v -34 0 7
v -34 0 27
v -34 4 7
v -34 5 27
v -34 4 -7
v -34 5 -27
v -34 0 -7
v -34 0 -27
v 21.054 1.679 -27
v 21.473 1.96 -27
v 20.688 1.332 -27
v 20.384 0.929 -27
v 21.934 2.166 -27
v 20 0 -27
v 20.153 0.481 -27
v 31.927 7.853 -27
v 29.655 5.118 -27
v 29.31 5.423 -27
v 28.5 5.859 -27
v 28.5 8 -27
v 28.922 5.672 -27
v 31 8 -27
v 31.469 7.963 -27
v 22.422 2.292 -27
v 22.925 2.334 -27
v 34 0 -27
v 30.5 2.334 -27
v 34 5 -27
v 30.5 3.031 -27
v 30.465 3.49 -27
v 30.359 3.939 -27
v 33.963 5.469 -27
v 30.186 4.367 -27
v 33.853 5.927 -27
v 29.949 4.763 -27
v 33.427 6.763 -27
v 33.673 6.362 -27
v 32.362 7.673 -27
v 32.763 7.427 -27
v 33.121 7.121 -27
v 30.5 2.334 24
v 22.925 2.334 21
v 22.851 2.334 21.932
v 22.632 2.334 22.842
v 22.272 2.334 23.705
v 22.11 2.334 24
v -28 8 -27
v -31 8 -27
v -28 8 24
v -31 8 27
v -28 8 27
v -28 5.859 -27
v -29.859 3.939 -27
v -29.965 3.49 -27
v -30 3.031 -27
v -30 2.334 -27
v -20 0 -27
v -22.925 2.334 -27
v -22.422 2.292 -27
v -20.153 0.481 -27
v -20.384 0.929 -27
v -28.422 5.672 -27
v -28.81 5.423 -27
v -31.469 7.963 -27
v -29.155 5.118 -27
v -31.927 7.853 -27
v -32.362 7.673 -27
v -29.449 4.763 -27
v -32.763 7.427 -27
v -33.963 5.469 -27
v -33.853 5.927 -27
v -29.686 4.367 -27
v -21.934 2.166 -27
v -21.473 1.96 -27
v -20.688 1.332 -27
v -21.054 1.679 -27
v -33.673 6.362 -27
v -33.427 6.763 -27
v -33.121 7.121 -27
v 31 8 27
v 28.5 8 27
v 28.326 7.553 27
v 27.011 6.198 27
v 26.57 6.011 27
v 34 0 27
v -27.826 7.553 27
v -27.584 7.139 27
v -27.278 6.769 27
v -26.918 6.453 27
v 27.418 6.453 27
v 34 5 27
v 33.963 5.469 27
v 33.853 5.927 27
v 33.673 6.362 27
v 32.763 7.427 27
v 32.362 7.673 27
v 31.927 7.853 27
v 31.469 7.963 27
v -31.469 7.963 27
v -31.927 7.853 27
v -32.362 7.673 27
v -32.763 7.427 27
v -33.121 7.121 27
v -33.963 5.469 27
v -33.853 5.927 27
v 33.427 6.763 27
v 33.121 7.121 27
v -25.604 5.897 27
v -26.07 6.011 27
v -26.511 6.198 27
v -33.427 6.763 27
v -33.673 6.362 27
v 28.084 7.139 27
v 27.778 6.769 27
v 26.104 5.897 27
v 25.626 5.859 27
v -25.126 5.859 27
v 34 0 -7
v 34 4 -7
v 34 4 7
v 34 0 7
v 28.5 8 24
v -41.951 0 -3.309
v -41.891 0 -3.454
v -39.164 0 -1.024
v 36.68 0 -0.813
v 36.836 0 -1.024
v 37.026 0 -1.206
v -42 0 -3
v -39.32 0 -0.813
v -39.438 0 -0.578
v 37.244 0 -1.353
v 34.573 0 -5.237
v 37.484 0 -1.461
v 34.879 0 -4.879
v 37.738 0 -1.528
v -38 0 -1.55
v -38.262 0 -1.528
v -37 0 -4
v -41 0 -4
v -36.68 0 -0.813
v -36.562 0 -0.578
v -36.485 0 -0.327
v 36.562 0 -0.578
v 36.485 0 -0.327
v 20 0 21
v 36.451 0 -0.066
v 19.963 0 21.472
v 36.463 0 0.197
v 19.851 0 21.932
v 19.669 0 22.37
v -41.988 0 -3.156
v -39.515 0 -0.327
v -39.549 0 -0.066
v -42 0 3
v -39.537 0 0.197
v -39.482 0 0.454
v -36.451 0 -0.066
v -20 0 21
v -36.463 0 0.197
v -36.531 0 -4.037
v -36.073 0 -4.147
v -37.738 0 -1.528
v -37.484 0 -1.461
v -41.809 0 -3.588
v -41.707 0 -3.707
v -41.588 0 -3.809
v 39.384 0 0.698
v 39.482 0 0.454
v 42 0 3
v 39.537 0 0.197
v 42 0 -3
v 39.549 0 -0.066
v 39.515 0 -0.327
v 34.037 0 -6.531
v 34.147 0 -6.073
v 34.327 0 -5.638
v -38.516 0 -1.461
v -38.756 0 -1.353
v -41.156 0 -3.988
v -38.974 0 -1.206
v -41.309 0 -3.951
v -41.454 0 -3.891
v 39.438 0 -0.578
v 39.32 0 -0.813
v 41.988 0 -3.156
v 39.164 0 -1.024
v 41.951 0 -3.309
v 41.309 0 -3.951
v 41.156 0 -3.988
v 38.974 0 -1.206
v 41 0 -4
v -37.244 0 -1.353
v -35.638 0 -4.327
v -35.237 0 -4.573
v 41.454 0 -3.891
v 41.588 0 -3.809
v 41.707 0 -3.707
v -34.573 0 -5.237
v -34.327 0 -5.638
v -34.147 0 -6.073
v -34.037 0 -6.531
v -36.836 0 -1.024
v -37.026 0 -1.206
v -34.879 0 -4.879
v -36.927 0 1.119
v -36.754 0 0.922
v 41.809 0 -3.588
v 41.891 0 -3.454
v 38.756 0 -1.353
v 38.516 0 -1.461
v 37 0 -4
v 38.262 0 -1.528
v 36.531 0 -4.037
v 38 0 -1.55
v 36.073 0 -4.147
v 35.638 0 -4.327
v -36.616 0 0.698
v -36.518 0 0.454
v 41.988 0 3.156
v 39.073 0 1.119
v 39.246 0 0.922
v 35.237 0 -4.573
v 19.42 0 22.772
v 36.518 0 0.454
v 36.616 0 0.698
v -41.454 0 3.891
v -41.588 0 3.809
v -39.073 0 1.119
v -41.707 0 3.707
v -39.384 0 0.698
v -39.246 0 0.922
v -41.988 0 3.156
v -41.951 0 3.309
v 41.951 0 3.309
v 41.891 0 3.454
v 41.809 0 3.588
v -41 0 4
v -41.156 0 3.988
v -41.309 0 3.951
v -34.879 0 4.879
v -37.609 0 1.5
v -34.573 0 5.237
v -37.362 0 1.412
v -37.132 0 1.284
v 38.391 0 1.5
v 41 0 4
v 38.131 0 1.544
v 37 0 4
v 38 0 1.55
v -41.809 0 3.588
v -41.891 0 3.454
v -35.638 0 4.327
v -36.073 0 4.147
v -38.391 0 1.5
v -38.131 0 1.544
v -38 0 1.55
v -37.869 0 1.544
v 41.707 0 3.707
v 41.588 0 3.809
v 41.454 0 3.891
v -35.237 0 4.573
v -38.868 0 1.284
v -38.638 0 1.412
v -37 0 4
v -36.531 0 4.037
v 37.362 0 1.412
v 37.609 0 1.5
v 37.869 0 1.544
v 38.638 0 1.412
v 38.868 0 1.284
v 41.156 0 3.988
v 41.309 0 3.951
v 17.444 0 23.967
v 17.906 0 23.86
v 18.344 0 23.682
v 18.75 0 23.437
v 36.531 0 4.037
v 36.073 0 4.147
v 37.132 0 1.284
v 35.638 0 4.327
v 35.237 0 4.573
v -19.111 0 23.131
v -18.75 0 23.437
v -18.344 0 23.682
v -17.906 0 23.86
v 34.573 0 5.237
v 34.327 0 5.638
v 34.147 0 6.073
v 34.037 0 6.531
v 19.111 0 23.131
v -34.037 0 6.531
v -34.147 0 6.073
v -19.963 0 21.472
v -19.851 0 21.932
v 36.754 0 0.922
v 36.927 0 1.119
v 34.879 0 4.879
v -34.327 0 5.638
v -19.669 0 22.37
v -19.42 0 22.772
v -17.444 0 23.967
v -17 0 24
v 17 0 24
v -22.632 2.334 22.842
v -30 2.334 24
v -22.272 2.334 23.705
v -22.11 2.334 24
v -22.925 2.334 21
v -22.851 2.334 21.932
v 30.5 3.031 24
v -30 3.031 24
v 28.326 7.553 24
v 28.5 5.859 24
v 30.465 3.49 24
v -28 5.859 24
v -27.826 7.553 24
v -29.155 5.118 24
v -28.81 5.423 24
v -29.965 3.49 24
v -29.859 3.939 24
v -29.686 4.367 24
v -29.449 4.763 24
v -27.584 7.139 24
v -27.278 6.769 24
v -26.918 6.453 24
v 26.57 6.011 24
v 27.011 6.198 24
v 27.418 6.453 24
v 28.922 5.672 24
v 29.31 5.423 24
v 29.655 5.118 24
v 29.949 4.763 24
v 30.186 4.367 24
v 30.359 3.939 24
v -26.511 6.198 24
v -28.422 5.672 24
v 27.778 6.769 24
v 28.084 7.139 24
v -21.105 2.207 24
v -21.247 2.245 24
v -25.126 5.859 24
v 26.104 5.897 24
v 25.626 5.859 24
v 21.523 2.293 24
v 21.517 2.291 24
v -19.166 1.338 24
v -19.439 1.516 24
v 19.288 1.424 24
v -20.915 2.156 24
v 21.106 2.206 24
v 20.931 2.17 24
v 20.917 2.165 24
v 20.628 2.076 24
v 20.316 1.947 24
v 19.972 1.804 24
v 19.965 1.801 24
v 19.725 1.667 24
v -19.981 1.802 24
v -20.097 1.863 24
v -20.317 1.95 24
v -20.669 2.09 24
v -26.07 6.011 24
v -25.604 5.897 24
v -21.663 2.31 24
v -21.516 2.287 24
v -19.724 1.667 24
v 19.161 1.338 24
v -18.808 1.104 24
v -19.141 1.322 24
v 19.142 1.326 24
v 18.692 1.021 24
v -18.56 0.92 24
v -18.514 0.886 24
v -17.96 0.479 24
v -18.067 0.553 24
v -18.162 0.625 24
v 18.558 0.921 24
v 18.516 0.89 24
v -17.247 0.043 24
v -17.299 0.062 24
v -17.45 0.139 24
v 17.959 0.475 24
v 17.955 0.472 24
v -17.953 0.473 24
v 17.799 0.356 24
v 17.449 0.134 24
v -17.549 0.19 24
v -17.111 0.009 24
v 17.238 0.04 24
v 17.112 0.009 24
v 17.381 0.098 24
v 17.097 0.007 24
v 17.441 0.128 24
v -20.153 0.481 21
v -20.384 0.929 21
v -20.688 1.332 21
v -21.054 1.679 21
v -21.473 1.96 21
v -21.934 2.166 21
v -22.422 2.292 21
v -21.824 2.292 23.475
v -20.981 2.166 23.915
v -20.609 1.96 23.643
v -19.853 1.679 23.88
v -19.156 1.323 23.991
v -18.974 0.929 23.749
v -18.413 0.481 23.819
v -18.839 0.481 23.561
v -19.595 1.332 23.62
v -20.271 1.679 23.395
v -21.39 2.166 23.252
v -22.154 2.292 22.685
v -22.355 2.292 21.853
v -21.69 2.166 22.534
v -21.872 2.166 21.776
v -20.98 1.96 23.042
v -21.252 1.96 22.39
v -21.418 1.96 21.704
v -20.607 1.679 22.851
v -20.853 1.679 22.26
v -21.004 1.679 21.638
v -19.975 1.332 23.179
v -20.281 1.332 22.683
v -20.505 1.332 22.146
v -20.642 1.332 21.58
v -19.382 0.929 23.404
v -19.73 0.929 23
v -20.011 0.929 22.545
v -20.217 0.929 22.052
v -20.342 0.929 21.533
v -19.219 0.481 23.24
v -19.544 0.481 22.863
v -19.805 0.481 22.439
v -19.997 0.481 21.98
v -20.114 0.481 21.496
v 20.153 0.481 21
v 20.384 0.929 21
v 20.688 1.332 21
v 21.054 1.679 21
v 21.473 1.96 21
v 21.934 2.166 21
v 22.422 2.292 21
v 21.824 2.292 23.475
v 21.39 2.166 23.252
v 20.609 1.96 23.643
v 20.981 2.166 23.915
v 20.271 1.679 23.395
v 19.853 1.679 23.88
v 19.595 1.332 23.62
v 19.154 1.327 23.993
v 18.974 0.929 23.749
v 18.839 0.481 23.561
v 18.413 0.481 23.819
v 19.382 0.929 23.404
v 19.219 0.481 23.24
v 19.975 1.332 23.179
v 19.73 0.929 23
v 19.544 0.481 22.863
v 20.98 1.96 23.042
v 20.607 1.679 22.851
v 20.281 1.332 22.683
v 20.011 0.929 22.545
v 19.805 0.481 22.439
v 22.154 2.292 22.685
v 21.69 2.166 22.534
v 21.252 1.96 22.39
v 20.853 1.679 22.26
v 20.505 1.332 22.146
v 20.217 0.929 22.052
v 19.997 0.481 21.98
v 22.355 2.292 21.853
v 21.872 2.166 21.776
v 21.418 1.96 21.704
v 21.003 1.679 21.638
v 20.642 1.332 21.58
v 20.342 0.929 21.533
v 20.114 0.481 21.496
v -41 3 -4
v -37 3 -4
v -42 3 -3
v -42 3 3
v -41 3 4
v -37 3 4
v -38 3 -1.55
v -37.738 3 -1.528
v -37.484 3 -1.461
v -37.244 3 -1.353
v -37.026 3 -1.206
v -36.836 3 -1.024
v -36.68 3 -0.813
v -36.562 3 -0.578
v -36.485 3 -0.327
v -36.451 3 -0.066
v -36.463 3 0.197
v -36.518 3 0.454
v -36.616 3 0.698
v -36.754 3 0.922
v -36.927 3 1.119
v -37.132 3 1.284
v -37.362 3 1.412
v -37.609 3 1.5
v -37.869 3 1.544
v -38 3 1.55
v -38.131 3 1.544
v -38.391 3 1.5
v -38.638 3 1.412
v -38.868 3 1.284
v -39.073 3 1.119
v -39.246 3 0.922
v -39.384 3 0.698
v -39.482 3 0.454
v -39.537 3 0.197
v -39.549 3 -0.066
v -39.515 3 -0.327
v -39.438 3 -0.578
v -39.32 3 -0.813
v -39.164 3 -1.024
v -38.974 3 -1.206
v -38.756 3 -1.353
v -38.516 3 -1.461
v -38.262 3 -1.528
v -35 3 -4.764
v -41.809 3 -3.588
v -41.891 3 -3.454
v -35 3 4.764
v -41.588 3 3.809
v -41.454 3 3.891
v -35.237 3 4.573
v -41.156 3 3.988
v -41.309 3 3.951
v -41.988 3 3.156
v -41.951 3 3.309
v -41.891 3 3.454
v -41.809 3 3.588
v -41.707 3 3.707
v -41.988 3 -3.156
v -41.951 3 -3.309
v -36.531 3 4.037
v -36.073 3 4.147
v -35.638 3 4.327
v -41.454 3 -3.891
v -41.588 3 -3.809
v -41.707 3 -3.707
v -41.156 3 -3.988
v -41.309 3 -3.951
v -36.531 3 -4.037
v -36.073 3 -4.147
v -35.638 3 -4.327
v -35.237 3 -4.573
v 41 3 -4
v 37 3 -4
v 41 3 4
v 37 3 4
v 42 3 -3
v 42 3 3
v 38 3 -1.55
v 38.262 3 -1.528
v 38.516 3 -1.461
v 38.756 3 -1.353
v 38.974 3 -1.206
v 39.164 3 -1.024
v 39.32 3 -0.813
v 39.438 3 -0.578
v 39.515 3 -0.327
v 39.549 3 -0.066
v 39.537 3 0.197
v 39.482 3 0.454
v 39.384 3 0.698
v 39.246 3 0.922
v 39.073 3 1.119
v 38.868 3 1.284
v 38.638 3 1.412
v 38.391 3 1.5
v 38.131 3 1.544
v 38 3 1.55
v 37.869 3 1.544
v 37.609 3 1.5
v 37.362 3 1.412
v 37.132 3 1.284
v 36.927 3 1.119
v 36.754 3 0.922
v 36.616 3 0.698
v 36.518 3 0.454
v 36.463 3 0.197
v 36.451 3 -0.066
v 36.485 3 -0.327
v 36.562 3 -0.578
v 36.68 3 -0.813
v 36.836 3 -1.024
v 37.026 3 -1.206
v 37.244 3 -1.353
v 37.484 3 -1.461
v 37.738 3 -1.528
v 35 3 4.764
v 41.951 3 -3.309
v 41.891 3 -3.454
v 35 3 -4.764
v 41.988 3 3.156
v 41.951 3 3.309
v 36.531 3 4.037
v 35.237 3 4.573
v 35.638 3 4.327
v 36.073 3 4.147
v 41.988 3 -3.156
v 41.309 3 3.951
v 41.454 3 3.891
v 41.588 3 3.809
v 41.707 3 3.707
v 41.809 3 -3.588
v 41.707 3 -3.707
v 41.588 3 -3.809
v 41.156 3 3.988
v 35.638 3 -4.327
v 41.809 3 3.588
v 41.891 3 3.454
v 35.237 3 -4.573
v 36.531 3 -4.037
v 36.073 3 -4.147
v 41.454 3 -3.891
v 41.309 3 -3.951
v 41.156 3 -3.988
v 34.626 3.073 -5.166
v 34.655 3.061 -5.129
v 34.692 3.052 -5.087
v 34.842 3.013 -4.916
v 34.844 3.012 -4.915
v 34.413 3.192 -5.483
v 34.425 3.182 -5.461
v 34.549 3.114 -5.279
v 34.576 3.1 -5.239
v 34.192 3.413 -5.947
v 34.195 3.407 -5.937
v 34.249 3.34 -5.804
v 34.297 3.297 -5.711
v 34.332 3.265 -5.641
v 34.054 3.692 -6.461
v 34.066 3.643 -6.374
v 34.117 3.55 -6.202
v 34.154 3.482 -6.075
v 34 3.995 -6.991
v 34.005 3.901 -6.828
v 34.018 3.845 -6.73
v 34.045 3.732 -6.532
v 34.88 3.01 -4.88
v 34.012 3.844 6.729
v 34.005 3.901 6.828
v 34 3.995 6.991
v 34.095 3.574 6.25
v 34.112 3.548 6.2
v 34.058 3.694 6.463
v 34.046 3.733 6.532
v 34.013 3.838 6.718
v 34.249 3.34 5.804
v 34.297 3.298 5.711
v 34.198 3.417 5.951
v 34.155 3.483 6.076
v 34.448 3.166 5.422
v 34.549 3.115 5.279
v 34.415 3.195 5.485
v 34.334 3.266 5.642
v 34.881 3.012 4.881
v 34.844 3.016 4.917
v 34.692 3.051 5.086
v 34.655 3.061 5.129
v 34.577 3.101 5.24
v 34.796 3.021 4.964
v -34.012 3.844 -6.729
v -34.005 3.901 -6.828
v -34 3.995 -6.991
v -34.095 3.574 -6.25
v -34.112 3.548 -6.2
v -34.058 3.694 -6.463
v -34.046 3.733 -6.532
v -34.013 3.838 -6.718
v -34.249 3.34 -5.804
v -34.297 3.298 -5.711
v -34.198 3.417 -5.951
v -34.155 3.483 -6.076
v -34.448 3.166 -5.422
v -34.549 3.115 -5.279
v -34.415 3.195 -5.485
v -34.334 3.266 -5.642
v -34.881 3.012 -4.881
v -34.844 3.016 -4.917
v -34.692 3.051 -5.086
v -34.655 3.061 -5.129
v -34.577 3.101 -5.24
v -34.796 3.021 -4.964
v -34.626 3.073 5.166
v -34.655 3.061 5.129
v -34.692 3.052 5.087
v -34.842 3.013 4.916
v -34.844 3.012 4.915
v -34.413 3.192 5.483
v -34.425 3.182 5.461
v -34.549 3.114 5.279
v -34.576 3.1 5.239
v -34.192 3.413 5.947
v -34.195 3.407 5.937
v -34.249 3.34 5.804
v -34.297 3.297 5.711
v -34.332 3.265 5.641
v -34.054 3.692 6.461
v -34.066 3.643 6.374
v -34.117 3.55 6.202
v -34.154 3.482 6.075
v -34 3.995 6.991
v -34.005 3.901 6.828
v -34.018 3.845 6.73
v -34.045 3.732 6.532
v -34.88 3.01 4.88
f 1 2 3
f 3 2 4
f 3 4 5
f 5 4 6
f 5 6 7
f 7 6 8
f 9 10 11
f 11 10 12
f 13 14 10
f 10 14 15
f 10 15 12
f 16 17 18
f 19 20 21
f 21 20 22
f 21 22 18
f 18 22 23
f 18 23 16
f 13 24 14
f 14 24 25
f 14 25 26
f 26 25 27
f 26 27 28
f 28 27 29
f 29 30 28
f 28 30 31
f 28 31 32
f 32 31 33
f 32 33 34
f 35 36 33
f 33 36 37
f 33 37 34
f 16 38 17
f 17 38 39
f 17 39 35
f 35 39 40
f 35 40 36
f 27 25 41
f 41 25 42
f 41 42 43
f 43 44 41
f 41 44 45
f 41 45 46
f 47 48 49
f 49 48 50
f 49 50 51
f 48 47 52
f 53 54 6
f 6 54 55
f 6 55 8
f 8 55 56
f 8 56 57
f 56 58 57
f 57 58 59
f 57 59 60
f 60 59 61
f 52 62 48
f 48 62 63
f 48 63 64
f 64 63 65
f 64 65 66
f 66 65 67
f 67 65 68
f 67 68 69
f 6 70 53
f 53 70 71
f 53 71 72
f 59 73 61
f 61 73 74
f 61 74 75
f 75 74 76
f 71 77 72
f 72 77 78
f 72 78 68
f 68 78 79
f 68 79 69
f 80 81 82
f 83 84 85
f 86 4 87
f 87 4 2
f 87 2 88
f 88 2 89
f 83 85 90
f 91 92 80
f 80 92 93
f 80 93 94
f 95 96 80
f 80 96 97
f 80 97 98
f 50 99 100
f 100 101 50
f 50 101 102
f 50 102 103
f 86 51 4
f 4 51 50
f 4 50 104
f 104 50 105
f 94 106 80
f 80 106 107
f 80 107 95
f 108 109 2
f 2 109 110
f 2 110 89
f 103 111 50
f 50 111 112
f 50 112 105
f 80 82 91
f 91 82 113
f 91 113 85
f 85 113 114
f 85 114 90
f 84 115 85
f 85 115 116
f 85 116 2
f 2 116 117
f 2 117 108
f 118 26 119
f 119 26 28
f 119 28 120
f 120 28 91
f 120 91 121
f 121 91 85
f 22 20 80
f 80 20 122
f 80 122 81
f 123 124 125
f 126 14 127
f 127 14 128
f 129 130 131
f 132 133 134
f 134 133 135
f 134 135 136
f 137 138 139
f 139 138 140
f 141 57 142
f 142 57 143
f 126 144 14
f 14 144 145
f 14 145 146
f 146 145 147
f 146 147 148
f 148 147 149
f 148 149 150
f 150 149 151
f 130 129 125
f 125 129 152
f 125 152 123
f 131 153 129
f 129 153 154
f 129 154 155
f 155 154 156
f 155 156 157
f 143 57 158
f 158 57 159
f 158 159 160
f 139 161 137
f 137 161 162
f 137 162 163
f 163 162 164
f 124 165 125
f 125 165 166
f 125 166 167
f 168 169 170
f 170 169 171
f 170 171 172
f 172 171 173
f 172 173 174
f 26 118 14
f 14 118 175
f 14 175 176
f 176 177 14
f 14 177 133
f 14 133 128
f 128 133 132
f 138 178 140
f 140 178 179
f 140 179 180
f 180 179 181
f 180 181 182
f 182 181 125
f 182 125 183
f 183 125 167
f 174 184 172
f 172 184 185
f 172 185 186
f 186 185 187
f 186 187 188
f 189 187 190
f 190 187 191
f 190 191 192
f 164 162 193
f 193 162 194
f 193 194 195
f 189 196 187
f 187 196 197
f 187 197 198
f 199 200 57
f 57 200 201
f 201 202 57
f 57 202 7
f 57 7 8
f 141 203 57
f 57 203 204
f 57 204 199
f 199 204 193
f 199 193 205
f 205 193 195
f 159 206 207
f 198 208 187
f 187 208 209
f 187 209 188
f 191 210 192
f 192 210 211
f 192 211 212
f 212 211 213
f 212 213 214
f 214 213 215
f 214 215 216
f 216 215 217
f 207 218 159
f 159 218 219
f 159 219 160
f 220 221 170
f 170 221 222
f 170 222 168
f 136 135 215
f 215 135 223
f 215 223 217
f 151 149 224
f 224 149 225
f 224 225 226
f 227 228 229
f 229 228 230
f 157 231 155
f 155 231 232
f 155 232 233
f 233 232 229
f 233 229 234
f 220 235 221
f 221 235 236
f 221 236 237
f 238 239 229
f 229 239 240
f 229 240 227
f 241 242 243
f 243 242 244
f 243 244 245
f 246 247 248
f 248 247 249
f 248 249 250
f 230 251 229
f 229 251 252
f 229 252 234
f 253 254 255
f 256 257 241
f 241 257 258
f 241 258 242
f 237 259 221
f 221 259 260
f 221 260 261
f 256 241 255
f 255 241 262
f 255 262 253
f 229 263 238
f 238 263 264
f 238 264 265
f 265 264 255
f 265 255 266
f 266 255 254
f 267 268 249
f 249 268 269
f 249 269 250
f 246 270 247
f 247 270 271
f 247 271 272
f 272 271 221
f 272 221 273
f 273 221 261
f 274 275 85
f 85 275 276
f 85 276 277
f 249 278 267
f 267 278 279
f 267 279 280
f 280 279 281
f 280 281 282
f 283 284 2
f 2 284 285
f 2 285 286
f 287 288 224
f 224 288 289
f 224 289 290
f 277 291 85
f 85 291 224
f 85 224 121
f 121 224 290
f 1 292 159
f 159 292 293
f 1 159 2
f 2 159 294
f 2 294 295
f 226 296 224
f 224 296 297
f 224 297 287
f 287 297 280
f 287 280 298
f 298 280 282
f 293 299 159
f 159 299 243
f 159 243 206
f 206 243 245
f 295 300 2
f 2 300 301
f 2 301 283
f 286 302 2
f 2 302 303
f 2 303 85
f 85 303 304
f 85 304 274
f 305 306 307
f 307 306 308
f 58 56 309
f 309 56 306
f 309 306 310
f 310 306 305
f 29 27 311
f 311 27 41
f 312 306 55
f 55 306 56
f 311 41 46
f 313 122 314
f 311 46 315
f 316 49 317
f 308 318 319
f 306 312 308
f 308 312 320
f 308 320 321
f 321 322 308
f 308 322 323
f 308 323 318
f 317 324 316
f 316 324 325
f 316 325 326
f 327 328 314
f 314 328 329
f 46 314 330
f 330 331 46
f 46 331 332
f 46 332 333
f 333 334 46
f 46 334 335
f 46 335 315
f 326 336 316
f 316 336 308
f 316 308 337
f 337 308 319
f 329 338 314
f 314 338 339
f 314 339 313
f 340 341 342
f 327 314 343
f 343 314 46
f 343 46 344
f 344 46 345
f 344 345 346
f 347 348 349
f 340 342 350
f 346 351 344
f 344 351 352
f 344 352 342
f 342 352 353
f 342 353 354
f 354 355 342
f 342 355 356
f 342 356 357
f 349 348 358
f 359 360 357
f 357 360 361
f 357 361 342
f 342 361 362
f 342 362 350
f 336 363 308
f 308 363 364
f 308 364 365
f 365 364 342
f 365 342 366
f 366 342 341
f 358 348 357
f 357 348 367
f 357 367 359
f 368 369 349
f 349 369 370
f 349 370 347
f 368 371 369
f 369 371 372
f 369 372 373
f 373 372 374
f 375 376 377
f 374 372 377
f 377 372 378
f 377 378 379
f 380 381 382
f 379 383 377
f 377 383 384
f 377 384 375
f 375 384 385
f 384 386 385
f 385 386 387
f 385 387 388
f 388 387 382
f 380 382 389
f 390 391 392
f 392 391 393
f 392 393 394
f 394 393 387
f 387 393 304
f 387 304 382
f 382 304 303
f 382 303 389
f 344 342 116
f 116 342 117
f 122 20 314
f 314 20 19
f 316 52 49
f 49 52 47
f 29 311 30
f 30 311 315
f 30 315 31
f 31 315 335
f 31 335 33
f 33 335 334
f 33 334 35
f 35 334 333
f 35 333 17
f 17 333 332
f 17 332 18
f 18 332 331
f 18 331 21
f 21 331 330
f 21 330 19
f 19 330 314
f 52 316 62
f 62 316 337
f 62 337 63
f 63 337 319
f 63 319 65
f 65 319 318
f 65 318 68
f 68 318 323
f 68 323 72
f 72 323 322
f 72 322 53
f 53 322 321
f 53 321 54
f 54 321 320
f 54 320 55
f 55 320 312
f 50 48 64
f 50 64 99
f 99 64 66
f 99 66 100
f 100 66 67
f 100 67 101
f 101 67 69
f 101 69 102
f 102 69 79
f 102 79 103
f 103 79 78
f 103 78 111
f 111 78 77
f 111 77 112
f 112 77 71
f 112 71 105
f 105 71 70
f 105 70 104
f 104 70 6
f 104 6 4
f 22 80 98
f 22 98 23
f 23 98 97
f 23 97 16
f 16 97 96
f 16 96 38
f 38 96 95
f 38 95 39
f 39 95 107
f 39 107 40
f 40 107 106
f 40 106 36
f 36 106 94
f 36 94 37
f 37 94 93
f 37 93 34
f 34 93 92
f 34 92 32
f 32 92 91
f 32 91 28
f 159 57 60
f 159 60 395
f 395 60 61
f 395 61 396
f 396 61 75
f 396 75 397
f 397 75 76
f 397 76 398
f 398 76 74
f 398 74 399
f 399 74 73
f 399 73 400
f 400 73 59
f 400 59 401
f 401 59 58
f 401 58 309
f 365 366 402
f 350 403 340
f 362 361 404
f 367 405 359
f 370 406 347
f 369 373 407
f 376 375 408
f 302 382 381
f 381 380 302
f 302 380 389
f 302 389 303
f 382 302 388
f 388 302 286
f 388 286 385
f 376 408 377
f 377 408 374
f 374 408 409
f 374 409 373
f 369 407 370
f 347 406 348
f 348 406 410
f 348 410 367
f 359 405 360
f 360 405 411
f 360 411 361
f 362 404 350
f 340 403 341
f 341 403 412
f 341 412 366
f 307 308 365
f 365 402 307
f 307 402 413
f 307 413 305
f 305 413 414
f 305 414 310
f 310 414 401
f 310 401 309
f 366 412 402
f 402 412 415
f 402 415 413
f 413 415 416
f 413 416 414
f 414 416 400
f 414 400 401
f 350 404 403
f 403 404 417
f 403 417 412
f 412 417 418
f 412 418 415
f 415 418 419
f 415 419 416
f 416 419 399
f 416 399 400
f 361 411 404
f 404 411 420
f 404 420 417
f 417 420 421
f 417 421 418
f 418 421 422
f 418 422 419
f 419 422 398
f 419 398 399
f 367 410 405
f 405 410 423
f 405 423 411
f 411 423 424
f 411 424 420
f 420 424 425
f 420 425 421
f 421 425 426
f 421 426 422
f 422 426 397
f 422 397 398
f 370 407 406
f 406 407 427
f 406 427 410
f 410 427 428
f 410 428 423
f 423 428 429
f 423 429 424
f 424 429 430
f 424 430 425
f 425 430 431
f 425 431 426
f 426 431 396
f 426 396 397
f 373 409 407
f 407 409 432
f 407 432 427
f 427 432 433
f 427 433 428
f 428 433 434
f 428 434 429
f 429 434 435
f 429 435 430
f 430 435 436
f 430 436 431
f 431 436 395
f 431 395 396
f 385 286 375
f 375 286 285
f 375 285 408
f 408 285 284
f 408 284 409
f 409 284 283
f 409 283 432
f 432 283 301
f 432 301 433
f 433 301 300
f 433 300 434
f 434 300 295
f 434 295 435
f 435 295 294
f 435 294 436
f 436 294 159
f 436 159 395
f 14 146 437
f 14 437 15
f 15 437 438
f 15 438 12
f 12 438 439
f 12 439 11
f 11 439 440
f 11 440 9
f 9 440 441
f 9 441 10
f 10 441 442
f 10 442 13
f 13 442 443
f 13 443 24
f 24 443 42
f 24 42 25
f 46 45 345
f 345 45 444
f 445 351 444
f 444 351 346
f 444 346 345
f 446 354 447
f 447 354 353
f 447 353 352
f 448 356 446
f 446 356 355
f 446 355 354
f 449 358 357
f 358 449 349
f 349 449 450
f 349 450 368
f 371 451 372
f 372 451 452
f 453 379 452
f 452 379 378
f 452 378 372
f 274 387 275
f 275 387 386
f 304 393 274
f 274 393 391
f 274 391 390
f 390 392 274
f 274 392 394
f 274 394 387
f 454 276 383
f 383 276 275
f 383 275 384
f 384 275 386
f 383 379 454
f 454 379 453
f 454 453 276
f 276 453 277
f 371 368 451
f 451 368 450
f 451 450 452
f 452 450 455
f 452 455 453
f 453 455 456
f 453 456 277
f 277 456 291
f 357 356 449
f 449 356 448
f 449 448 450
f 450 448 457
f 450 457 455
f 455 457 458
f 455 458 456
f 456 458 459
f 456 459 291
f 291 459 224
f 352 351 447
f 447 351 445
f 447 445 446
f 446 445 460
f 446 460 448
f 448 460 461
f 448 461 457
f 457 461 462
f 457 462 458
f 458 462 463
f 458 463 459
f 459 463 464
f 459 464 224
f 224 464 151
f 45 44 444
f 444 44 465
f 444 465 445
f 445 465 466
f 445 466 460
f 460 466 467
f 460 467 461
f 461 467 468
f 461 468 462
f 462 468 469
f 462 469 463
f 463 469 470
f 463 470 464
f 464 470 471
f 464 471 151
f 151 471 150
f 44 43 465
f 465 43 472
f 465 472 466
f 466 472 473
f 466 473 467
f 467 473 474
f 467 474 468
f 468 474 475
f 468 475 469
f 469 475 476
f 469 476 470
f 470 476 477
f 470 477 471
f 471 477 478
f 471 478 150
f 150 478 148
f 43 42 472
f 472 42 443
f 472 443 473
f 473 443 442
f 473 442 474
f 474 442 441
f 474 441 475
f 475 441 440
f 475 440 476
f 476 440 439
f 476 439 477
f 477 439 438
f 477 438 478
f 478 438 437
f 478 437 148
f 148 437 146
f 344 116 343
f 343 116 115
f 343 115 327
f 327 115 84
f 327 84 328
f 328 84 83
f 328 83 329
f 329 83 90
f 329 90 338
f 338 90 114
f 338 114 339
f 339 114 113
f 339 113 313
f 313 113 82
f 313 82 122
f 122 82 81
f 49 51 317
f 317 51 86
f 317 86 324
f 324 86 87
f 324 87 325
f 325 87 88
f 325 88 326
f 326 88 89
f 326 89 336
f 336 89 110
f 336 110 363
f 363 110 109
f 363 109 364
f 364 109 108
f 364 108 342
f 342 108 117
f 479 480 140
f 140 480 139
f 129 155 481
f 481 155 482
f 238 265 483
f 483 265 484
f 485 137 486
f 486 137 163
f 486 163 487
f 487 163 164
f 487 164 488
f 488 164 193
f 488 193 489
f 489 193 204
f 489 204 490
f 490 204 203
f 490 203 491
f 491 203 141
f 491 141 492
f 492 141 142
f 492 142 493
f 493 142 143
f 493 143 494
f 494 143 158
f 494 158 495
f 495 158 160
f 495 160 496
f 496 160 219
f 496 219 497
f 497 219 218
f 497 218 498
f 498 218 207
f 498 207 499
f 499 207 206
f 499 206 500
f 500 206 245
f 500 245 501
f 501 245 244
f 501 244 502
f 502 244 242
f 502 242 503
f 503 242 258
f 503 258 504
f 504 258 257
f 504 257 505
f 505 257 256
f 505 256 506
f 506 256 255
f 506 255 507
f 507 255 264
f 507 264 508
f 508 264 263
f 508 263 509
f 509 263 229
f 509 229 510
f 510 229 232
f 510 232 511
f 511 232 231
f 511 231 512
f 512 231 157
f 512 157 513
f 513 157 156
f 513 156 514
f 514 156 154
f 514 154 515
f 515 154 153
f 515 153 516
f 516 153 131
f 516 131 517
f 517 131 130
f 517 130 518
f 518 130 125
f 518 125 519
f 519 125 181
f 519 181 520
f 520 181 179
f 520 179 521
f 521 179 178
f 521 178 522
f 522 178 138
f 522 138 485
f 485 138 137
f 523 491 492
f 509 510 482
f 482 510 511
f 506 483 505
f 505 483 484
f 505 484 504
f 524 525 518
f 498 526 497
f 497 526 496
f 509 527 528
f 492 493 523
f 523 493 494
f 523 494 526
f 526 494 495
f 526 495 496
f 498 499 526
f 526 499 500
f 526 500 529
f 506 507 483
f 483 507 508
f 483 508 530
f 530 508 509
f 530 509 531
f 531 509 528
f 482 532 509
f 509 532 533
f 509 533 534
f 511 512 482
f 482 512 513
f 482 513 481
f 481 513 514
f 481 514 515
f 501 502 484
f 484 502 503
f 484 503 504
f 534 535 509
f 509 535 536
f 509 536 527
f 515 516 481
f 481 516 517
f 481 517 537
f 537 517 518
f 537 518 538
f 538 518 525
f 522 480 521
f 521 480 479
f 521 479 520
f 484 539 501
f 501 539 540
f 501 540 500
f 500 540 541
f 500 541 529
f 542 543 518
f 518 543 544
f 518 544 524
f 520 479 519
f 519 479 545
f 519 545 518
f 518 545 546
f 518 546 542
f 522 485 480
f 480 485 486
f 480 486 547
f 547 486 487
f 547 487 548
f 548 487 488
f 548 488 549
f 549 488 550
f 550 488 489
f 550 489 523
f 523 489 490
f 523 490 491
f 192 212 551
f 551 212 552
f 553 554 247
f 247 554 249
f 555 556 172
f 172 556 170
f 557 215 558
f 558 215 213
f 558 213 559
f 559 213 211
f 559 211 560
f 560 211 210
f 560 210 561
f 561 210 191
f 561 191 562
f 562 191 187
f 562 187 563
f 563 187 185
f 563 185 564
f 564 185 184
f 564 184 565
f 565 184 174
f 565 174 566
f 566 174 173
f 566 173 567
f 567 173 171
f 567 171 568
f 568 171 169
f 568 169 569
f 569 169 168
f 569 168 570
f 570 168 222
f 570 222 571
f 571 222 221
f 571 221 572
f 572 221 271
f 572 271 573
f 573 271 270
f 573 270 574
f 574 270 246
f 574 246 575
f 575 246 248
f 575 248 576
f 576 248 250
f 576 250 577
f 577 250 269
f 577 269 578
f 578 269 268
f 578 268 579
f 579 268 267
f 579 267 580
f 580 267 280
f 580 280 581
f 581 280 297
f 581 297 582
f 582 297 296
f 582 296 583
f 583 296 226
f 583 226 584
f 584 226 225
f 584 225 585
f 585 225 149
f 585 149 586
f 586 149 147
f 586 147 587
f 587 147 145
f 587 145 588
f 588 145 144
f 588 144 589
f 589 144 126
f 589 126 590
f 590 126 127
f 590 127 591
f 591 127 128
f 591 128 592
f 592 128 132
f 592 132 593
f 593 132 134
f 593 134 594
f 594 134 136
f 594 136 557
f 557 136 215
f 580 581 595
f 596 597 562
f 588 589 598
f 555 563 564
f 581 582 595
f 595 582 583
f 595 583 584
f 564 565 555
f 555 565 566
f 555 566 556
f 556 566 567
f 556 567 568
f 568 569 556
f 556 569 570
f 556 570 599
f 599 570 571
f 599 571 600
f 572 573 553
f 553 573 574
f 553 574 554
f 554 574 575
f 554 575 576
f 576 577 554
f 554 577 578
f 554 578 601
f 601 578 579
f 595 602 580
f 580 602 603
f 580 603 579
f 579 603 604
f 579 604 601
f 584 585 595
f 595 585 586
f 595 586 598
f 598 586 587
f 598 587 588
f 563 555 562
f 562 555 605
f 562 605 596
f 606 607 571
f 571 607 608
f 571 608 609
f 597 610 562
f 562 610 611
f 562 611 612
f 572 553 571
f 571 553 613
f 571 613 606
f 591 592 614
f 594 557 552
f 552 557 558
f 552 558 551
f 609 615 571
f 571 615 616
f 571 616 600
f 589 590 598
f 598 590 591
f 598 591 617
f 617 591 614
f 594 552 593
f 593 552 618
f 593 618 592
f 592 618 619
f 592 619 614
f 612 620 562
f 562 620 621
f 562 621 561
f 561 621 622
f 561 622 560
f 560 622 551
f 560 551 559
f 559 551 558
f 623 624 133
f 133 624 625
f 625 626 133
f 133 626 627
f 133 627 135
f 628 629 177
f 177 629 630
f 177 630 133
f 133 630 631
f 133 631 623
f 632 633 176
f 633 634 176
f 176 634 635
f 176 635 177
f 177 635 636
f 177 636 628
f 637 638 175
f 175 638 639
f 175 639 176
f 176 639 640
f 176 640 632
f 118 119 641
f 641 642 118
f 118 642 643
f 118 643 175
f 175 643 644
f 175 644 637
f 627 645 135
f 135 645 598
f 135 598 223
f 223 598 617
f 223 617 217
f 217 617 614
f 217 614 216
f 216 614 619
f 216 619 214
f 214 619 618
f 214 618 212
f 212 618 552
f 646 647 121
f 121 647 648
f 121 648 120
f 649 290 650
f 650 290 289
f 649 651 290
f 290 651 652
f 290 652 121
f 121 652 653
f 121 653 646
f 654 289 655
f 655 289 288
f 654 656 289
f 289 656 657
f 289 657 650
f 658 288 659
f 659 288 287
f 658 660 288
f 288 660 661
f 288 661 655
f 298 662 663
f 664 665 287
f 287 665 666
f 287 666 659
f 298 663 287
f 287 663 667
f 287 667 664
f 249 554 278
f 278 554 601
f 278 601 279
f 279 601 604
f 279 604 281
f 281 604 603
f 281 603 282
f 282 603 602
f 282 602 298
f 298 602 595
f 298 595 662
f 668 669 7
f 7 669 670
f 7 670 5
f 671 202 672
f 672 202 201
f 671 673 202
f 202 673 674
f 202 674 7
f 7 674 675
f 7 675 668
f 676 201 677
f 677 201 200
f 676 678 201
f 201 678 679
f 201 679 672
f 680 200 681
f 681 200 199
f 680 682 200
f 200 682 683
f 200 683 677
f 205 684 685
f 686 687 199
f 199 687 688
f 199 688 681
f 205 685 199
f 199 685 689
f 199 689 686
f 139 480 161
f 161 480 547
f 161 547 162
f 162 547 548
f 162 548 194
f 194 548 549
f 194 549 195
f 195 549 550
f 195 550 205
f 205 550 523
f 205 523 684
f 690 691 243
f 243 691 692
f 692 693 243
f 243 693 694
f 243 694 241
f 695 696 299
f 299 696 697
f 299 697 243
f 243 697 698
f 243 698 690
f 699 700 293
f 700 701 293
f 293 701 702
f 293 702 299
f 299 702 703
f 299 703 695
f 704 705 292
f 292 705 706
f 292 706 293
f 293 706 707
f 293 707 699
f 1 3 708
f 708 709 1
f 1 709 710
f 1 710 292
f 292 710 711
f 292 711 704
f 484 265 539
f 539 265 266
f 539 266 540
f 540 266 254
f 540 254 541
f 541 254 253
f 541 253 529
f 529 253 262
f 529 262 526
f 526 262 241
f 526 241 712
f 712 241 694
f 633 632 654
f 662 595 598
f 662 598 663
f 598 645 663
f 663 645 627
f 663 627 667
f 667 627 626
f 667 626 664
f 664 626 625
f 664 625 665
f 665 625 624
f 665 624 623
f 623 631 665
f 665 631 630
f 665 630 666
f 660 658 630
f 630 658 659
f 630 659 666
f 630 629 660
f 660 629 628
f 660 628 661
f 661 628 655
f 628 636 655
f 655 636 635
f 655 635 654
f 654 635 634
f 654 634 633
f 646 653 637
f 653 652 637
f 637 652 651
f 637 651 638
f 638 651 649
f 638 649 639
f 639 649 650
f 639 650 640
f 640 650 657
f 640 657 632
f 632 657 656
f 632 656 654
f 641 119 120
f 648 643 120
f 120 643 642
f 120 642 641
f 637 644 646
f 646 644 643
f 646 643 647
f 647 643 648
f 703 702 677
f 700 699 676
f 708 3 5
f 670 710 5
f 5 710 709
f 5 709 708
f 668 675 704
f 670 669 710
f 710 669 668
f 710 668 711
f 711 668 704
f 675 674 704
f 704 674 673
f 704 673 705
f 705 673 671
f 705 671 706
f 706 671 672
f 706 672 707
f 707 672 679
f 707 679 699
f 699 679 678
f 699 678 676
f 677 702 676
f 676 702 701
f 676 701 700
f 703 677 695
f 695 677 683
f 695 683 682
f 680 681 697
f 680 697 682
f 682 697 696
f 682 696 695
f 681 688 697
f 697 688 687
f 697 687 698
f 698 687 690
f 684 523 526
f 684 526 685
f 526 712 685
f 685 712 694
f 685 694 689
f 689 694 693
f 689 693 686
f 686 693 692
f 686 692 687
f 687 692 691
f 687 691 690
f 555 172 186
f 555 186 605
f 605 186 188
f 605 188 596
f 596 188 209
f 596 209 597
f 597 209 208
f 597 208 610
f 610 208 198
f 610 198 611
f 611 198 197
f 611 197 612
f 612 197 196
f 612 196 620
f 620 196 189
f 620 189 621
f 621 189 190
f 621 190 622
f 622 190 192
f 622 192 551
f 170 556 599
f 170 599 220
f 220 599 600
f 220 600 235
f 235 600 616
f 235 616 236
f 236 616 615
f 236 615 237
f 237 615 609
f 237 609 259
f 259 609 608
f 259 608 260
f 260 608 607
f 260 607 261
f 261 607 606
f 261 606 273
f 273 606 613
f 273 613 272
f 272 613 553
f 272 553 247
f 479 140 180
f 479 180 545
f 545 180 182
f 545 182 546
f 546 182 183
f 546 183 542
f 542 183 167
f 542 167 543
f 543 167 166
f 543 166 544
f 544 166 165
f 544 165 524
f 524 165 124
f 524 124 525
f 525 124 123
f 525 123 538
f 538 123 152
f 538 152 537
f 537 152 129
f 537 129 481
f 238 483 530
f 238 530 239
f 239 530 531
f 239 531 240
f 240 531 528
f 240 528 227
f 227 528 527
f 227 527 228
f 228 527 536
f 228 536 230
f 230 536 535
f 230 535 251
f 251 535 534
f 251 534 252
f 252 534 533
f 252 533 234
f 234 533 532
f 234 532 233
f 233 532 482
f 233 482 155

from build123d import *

# Parameters (mm, degrees)
SKETCH1_W           = 68
SKETCH1_H           = 54
BOSS_EXTRUDE1_DEPTH = 8
CUT_EXTRUDE1_DEPTH  = 51
SKETCH2_3_W         = 28.5
SKETCH2_3_H         = 2.140954579
SKETCH2_3_W_2       = 28
CUT_EXTRUDE2_DEPTH  = 65.311740763
FILLET1_R           = 3
FILLET2_R           = 3
SKETCH3_W           = 40
SKETCH3_H           = 2.334194627
CUT_EXTRUDE3_DEPTH  = 51
FILLET3_R           = 3
FILLET4_R           = 3
FILLET5_R           = 3
SKETCH1_3_W         = 8
SKETCH1_3_H         = 8
SKETCH1_3_R         = 1.55
BOSS_EXTRUDE2_DEPTH = 3
FILLET6_R           = 3
FILLET7_R           = 1
FILLET8_R           = 1
FILLET9_R           = 1


with BuildPart() as part:
    # Sketch1 → Boss-Extrude1 (new body)
    with BuildSketch(Plane(origin=(0, 0, 0), x_dir=(1, 0, 0), z_dir=(0, 1, 0))):
        Rectangle(SKETCH1_W, SKETCH1_H)
    extrude(amount=BOSS_EXTRUDE1_DEPTH)

    # Sketch2 → Cut-Extrude1 (cut)
    with BuildSketch(Plane(origin=(0, 0, -27), x_dir=(-1, 0, 0), z_dir=(0, 0, -1))):
        Polygon((-30.5, 2.334194627), (0, 2.334194627), (0, 5.859045421), (-28.5, 5.859045421), (-30.5, 5.859045421), align=None)
        Polygon((0, 5.859045421), (0, 2.334194627), (30, 2.334194627), (30, 5.859045421), (28, 5.859045421), align=None)
    extrude(amount=-CUT_EXTRUDE1_DEPTH, mode=Mode.SUBTRACT)

    # Sketch2<3> → Cut-Extrude2 (cut, through all)
    with BuildSketch(Plane(origin=(0, 0, -27), x_dir=(-1, 0, 0), z_dir=(0, 0, -1))):
        with Locations((-14.25, 6.929522711)):
            Rectangle(SKETCH2_3_W, SKETCH2_3_H)
        with Locations((14, 6.929522711)):
            Rectangle(SKETCH2_3_W_2, SKETCH2_3_H)
    extrude(amount=-CUT_EXTRUDE2_DEPTH, mode=Mode.SUBTRACT)

    # Fillet1
    # the kernel refuses this fillet: 3 mm, written as the material it adds along each edge
    with BuildSketch(Plane(origin=(30.5, 5.859045421, -27), x_dir=(0, -1, 0), z_dir=(0, 0, 1))) as fillet1_piece_1:
        with BuildLine():
            CenterArc((2.828427125, -3), FILLET1_R, 90, 70.528779366)
            Line((0, -2), (-0.056568542, -1.98))
            ThreePointArc((-0.056568542, -1.98), (-0.06, -1), (-0.06, 0))
            Line((-0.06, 0), (0, 0.06))
            Line((0, 0.06), (2.828427125, 0.06))
            Line((2.828427125, 0.06), (2.828427125, 0))
        make_face()
    extrude(amount=51)
    with BuildSketch(Plane(origin=(-30, 5.859045421, -27), x_dir=(1, 0, 0), z_dir=(0, 0, 1))) as fillet1_piece_2:
        with BuildLine():
            CenterArc((3, -2.828427125), FILLET1_R, 109.471220634, 70.528779366)
            Line((0, -2.828427125), (-0.06, -2.828427125))
            Line((-0.06, -2.828427125), (-0.06, 0))
            Line((-0.06, 0), (0, 0.06))
            ThreePointArc((0, 0.06), (1, 0.06), (1.98, 0.056568542))
            Line((1.98, 0.056568542), (2, 0))
        make_face()
    extrude(amount=51)

    # Fillet2
    fillet2_edges = [part.edges().sort_by_distance(p)[0] for p in [
        (34, 8, 0),
        (-34, 8, 0),
    ]]
    fillet(fillet2_edges, radius=FILLET2_R)

    # Sketch3 → Cut-Extrude3 (cut)
    with BuildSketch(Plane(origin=(0, 0, -27), x_dir=(-1, 0, 0), z_dir=(0, 0, -1))):
        with Locations((0, 1.167097314)):
            Rectangle(SKETCH3_W, SKETCH3_H)
    extrude(amount=-CUT_EXTRUDE3_DEPTH, mode=Mode.SUBTRACT)

    # Fillet3
    fillet3_edges = [part.edges().sort_by_distance(p)[0] for p in [
        (20, 1.167097313, 24),
        (-20, 1.167097313, 24),
    ]]
    fillet(fillet3_edges, radius=FILLET3_R)

    # Fillet4
    # the kernel refuses this fillet: 3 mm, written as the material it takes off along each edge
    with BuildSketch(Plane(origin=(-17, 2.334194627, 21), x_dir=(0.6464786745536378, 0, -0.762932056835582), z_dir=(-0.762932056835582, 0, -0.6464786745536378))) as fillet4_piece_1_section:
        with BuildLine():
            CenterArc((5.925184303, 3), FILLET4_R, 192.822717627, 77.177282373)
            Line((3, 2.334194627), (3, 0))
            Line((3, 0), (5.925184303, 0))
        make_face()
    fillet4_piece_1 = revolve(axis=Axis((-17, 2.334194627, 21), (0, -1, 0)), revolution_arc=229.72336785, mode=Mode.PRIVATE)
    fillet4_piece_1 = split(fillet4_piece_1, bisect_by=Plane(origin=(-17, 2.334194627, 24), z_dir=(0, 0, -1)), keep=Keep.TOP, mode=Mode.PRIVATE)
    add(fillet4_piece_1, mode=Mode.SUBTRACT)
    with BuildSketch(Plane(origin=(17, 2.334194627, 21), x_dir=(1, 0, 0), z_dir=(0, 0, -1))) as fillet4_piece_2_section:
        with BuildLine():
            CenterArc((5.925184303, 3), FILLET4_R, 192.822717627, 77.177282373)
            Line((3, 2.334194627), (3, 0))
            Line((3, 0), (5.925184303, 0))
        make_face()
    fillet4_piece_2 = revolve(axis=Axis((17, 2.334194627, 21), (0, -1, 0)), revolution_arc=229.72336785, mode=Mode.PRIVATE)
    fillet4_piece_2 = split(fillet4_piece_2, bisect_by=Plane(origin=(17, 2.334194627, 24), z_dir=(0, 0, -1)), keep=Keep.TOP, mode=Mode.PRIVATE)
    add(fillet4_piece_2, mode=Mode.SUBTRACT)
    with BuildSketch(Plane(origin=(-20, 2.334194627, -34.312960757), x_dir=(-1, 0, 0), z_dir=(0, 0, 1))) as fillet4_piece_3:
        with BuildLine():
            CenterArc((2.925184303, 3), FILLET4_R, 192.822717627, 77.177282373)
            Line((0, 2.334194627), (0, 0))
            Line((0, 0), (2.925184303, 0))
        make_face()
    extrude(amount=55.312960757, mode=Mode.SUBTRACT)
    with BuildSketch(Plane(origin=(20, 2.334194627, -34.312960757), x_dir=(1, 0, 0), z_dir=(0, 0, 1))) as fillet4_piece_4:
        with BuildLine():
            CenterArc((2.925184303, -3), FILLET4_R, 90, 77.177282373)
            Line((0, -2.334194627), (0, 0))
            Line((0, 0), (2.925184303, 0))
        make_face()
    extrude(amount=55.312960757, mode=Mode.SUBTRACT)

    # Fillet5
    # the kernel refuses this fillet: 3 mm, written as the material it adds along each edge
    with BuildSketch(Plane(origin=(28.5, 5.859045421, 24), x_dir=(-1, 0, 0), z_dir=(0, 0, 1))) as fillet5_piece_1:
        with BuildLine():
            CenterArc((2.874376622, -3), FILLET5_R, 90, 73.360529794)
            Line((0, -2.140954579), (-0.057487532, -2.123773671))
            ThreePointArc((-0.057487532, -2.123773671), (-0.06, -1.07047729), (-0.06, 0))
            Line((-0.06, 0), (0, 0.06))
            Line((0, 0.06), (2.874376622, 0.06))
            Line((2.874376622, 0.06), (2.874376622, 0))
        make_face()
    extrude(amount=3)
    with BuildSketch(Plane(origin=(-28, 5.859045421, 24), x_dir=(1, 0, 0), z_dir=(0, 0, 1))) as fillet5_piece_2:
        with BuildLine():
            CenterArc((2.874376622, 3), FILLET5_R, 196.639470206, 73.360529794)
            Line((0, 2.140954579), (-0.057487532, 2.123773671))
            ThreePointArc((-0.057487532, 2.123773671), (-0.06, 1.07047729), (-0.06, 0))
            Line((-0.06, 0), (0, -0.06))
            Line((0, -0.06), (2.874376622, -0.06))
            Line((2.874376622, -0.06), (2.874376622, 0))
        make_face()
    extrude(amount=3)

    # Sketch1<3> → Boss-Extrude2 (add)
    # profile 1 of 2: a face of its own
    with BuildSketch(Plane(origin=(0, 0, 0), x_dir=(1, 0, 0), z_dir=(0, 1, 0))):
        with Locations((-38, 0)):
            Rectangle(SKETCH1_3_W, SKETCH1_3_H)
        with Locations(Location((-38, 0, 0), (0, 0, 270))):
            Circle(SKETCH1_3_R, mode=Mode.SUBTRACT)
    # profile 2 of 2: a face of its own
    with BuildSketch(Plane(origin=(0, 0, 0), x_dir=(1, 0, 0), z_dir=(0, 1, 0))):
        with Locations((38, 0)):
            Rectangle(SKETCH1_3_W, SKETCH1_3_H)
        with Locations(Location((38, 0, 0), (0, 0, 270))):
            Circle(SKETCH1_3_R, mode=Mode.SUBTRACT)
    extrude(amount=BOSS_EXTRUDE2_DEPTH)

    # Fillet6
    fillet6_edges = [part.edges().sort_by_distance(p)[0] for p in [
        (-34, 1.5, -4),
        (-34, 1.5, 4),
        (34, 1.5, -4),
        (34, 1.5, 4),
    ]]
    fillet(fillet6_edges, radius=FILLET6_R)

    # Fillet7
    fillet7_edges = [part.edges().sort_by_distance(p)[0] for p in [
        (34, 3, 0),
    ]]
    fillet(fillet7_edges, radius=FILLET7_R)

    # Fillet8
    fillet8_edges = [part.edges().sort_by_distance(p)[0] for p in [
        (-34, 3, 0),
    ]]
    fillet(fillet8_edges, radius=FILLET8_R)

    # Fillet9
    fillet9_edges = [part.edges().sort_by_distance(p)[0] for p in [
        (-42, 1.5, -4),
        (-42, 1.5, 4),
        (42, 1.5, -4),
        (42, 1.5, 4),
    ]]
    fillet(fillet9_edges, radius=FILLET9_R)


solid = part.part
